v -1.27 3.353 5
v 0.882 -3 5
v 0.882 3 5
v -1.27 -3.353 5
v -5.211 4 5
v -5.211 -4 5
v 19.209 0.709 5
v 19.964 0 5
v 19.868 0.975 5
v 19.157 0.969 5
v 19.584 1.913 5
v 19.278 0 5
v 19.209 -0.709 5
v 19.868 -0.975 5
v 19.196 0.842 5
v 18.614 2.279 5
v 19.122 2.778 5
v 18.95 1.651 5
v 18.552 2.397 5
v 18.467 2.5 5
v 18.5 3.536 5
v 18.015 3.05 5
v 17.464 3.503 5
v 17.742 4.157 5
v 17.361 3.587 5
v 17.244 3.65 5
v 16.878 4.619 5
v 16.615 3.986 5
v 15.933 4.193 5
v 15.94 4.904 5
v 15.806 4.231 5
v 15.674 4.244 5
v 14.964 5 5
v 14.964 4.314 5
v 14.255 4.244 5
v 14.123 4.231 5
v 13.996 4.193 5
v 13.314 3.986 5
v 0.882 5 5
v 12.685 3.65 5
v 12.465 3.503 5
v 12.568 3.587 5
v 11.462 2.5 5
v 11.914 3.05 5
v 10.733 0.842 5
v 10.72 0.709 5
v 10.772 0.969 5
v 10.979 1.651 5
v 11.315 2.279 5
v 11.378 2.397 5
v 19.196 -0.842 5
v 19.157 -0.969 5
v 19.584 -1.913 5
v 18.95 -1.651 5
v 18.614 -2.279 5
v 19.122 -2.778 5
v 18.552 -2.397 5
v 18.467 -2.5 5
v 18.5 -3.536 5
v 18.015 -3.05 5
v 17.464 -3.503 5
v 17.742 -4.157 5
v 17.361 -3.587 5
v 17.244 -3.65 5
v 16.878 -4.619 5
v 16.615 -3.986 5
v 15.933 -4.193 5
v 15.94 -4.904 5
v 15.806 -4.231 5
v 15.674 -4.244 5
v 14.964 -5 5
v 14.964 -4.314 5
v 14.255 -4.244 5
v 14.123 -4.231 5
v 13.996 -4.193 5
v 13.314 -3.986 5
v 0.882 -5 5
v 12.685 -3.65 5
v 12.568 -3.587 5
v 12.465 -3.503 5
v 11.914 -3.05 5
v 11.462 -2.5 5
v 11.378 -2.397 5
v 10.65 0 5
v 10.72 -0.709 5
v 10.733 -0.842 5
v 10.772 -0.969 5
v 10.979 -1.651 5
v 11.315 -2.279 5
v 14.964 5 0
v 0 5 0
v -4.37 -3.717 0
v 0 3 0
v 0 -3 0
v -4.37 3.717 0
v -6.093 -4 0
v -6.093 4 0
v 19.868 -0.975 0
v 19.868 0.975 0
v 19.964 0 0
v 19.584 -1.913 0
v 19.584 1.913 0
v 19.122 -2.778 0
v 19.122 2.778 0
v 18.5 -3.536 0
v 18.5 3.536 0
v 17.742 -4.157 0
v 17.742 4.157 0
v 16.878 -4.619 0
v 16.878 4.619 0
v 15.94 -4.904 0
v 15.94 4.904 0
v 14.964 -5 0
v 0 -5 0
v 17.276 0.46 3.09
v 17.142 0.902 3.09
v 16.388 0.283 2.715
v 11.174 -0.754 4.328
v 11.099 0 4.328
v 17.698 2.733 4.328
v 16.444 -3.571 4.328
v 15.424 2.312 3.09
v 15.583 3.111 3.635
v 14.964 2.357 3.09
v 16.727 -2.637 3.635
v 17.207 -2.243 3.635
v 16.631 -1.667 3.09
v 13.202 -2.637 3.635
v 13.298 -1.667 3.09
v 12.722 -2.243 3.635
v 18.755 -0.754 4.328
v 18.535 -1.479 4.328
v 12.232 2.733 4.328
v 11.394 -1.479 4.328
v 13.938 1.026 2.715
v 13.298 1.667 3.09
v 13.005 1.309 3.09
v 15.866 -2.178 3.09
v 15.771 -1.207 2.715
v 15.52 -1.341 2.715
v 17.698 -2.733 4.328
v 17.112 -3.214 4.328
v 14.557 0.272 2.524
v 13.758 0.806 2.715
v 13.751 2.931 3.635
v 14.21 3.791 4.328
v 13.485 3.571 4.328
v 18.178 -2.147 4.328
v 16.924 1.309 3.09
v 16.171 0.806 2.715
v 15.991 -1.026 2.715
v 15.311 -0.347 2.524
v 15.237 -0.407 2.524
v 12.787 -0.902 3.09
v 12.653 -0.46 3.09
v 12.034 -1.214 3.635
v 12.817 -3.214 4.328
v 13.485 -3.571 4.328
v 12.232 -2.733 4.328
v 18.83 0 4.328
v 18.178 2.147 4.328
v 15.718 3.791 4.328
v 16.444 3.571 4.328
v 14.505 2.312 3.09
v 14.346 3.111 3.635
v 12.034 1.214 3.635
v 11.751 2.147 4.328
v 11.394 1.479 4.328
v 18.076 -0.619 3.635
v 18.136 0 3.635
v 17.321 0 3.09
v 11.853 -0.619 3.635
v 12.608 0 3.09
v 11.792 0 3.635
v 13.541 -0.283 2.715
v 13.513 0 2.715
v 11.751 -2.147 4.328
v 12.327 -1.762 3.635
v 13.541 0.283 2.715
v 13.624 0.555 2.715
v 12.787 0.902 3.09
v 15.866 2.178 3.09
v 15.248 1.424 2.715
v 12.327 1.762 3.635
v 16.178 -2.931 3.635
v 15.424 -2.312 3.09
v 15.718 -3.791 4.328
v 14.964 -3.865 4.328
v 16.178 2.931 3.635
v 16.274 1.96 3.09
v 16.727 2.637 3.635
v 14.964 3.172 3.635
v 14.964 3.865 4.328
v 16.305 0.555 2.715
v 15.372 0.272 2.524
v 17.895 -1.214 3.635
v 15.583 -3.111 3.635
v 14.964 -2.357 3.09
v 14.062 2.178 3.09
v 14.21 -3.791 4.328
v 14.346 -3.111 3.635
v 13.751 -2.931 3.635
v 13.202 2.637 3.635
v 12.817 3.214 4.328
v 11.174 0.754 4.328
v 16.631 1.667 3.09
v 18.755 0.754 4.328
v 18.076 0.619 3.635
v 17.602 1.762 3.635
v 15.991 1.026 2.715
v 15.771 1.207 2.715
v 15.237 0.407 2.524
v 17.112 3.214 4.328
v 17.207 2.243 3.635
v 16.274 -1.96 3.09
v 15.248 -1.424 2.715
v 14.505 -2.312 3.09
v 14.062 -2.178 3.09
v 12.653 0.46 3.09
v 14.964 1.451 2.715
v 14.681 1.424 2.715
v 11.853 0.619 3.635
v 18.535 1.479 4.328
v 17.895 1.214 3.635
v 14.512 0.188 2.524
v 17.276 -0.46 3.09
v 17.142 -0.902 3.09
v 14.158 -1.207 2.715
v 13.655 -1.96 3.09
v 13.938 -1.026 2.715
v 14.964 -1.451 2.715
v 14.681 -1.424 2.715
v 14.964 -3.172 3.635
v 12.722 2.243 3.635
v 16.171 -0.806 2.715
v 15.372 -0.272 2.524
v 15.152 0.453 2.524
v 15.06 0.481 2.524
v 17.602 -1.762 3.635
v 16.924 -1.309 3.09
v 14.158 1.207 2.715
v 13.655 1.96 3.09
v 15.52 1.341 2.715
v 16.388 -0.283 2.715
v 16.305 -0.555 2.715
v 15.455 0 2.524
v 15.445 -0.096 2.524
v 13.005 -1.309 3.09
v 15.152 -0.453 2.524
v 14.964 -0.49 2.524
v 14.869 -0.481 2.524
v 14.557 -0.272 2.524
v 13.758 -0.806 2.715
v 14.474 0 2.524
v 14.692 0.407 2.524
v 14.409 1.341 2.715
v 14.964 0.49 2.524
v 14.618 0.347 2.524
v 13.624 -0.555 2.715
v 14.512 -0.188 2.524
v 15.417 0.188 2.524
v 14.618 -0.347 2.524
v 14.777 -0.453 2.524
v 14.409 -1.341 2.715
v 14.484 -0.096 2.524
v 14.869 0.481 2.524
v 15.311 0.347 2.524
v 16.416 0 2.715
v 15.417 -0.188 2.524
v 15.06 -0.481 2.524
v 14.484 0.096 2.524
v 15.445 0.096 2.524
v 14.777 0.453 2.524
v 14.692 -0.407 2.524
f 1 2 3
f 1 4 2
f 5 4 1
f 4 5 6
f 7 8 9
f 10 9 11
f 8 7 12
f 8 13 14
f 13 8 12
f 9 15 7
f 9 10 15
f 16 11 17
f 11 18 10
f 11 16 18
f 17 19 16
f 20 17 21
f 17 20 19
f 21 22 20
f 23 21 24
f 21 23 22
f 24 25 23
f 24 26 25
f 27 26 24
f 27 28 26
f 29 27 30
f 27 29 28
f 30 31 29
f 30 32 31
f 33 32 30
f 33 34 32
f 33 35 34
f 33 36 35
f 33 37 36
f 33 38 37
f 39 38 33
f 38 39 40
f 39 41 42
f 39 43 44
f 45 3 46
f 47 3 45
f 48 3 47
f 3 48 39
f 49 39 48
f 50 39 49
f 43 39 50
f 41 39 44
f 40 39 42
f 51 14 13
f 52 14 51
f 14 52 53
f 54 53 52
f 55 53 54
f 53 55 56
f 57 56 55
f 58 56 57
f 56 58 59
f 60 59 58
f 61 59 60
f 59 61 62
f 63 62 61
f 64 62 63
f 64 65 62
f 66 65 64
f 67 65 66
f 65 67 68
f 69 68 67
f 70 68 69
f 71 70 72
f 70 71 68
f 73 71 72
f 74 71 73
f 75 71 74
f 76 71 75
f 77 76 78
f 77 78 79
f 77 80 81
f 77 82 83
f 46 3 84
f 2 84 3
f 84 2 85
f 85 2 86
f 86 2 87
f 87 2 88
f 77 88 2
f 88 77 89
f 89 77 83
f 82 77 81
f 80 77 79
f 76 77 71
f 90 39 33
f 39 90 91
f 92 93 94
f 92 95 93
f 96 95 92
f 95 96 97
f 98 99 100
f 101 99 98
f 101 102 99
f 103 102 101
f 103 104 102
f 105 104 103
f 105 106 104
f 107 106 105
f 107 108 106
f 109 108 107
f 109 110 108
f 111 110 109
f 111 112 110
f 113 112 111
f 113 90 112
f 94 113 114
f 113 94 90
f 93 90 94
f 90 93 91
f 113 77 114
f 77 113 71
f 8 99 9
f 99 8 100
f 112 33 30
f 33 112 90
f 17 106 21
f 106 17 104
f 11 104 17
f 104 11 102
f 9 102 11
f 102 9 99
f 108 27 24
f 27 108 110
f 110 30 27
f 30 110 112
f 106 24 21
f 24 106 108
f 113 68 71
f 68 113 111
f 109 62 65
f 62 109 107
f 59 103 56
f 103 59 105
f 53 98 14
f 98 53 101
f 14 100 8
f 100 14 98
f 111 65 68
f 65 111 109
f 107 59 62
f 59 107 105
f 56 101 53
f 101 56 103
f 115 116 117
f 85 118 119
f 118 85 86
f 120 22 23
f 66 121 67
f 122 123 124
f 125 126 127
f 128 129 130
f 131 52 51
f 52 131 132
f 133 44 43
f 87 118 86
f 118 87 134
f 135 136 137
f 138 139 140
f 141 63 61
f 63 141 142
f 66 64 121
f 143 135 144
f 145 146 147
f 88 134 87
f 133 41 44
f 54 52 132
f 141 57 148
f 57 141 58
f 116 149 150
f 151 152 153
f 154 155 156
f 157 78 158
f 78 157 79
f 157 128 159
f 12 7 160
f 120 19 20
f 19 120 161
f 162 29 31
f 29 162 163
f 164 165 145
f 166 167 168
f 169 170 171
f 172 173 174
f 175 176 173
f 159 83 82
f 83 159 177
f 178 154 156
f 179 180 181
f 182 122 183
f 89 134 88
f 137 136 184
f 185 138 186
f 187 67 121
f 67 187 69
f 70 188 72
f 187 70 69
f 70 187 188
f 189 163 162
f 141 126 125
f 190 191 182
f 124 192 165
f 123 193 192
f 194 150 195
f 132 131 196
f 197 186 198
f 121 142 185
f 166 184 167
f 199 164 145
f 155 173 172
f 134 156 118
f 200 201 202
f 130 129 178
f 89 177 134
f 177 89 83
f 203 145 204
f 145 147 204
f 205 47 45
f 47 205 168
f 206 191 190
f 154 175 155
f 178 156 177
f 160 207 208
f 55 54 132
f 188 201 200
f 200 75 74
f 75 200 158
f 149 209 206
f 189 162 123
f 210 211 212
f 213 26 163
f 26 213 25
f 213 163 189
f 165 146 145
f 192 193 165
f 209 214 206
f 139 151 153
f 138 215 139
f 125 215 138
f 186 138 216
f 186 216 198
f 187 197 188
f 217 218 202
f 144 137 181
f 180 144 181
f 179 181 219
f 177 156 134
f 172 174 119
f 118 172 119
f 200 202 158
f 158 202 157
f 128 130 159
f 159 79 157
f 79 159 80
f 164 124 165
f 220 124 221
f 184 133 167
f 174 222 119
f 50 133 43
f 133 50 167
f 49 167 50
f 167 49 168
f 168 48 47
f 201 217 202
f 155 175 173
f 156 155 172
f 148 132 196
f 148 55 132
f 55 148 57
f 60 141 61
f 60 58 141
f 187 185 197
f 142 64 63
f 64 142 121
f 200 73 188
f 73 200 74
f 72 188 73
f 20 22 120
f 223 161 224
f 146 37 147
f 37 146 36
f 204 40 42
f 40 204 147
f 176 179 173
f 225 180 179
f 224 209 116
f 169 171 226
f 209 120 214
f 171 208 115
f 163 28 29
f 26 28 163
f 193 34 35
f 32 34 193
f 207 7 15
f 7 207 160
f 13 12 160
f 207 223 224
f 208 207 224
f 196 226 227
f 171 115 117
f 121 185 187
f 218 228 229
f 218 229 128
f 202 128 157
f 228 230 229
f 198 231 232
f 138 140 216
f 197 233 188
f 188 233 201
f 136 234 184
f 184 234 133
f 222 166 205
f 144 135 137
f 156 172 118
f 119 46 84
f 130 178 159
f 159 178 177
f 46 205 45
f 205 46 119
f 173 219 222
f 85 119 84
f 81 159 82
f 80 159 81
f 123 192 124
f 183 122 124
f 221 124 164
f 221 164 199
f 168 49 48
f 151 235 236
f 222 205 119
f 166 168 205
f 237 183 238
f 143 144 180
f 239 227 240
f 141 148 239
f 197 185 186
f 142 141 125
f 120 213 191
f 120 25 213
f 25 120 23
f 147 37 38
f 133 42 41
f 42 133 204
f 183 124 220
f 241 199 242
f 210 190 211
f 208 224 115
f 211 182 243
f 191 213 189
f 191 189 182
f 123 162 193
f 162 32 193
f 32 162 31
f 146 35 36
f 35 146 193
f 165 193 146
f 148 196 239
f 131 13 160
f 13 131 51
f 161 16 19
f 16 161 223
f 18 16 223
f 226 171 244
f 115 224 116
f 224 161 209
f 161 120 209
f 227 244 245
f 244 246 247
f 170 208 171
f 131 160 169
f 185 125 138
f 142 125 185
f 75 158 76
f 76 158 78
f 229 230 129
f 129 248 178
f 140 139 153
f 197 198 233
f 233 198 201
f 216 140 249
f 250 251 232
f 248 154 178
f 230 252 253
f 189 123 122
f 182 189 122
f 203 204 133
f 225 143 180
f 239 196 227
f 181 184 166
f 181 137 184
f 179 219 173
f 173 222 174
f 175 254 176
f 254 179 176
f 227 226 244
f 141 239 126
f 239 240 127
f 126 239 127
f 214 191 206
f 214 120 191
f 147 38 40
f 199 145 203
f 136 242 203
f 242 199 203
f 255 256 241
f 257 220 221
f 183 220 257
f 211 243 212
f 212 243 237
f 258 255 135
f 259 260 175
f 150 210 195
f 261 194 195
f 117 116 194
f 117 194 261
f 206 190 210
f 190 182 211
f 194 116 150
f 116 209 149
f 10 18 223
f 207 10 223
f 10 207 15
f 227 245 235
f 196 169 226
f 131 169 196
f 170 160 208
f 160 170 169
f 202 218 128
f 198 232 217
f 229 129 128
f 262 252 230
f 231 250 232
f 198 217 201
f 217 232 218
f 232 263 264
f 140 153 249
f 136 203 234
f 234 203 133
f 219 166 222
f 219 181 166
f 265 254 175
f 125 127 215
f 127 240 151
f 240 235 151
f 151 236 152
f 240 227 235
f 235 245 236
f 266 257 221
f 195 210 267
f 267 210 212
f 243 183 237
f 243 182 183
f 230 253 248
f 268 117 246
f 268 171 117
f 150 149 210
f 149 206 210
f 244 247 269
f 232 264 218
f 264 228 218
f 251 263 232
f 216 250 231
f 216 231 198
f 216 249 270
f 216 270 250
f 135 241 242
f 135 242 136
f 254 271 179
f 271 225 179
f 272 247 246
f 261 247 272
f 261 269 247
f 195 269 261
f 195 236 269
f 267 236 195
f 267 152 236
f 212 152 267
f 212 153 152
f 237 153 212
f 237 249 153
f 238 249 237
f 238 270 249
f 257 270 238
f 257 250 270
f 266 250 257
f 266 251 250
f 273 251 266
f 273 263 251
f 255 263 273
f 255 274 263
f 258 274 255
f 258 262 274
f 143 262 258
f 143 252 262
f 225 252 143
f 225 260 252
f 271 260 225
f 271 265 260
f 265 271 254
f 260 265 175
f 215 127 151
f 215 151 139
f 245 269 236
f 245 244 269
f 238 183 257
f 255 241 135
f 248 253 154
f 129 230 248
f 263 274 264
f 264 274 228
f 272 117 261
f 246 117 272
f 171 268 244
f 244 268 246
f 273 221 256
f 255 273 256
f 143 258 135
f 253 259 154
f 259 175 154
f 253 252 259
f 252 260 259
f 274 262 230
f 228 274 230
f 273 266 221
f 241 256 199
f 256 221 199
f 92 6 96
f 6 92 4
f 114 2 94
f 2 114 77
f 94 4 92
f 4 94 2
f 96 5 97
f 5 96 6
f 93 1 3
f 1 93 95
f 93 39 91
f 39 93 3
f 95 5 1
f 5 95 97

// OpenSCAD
// file: ../../conf/printer_config.scad
/**********************************************************************************************************************
 **
 ** conf/printer_config.scad
 **
 ** This file contains the main control variables that determine the size and shape of the printer. Note that in the
 ** actual parts specifications, the constants defined here will only ever be accessed through functions defined in
 ** conf/derived_sizes.scad exclusively to allow for easier adaptation, should the mode of calculation change. 
 **
 ** All sizes in mm. Caution: Little to no cross-checking is implemented. Change values sensibly and one at a time.
 **
 ** This file is NOT to be included by any other file except for conf/derived_sizes.scad.
 **
 **********************************************************************************************************************/

include <constants.scad>

// ===== PRINTER CONFIGURATION ========================================================================================

// The length of the vertical MakerSlide extrusions that make up the rails for the carriages.
FRAME_V_RAIL_HEIGHT = 800;

// The length of the horizontal 20x20 V-Slot extrusions that form the sides of the triangle.
FRAME_H_RAIL_LENGTH = 400;

// ===== FABRICATED PART DIMENSIONS ===================================================================================

// The additional clearance to leave around the MakerSlide extrusion.
MAKERSLIDE_CLEARANCE = 0.05;

// The thickness of the walls outside the extruded parts.
FRAME_PART_WALL_THICKNESS = 3;

// The thickness of the wall that separates the vertical rails from the horizontal extrusions.
FRAME_V_H_RAIL_SEPARATION = 8;

// The depth of the holes that hold the V-Slot extrusions.
FRAME_PART_VSLOT_DEPTH = 30;

// Whether to use a horizontal rail at the base of the printer or not.
FRAME_HORIZONTAL_BASE_RAIL = false;

// The depth of the holes in the foot that hold the MakerSlide extrusions. This is for the foot version that holds
// a horizontal rail.
FRAME_FOOT_RAIL_MAKERSLIDE_DEPTH = 25; 

// The depth of the holes in the foot that hold the MakerSlide extrusions. This is for the foot version that does not
// hold a horizontal rail.
FRAME_FOOT_NORAIL_MAKERSLIDE_DEPTH = 17.5; 

// The size of the screws that can be used to mount the foot to the underlying surface.
FRAME_FOOT_BOTTOM_SCREW_SIZE = M5;

// The height of the bracket that holds the motor. WARNING: Increasing this might make it difficult to 
// turn the screws that hold the motor.
FRAME_MOTOR_BRACKET_HEIGHT = 25;

// The height of the bracket that holds the intermediate level with the working surface (print bed).
FRAME_BED_BRACKET_HEIGHT = 25; 

// The depth of the holes in the head that hold the MakerSlide extrusions.
FRAME_HEAD_MAKERSLIDE_DEPTH = 35; 

// The thickness of the carriage base plate. A thicker plate will make the carriage stiffer, but cost more
// material to print and take away space from the working area.
CARRIAGE_PLATE_THICKNESS = 6;

// The width of the border around the holes in the carriage base plate that hold the V-Wheels. 
CARRIAGE_PLATE_BORDER_WIDTH = 8;

// The range by which the vertical belt tensioner can be adjusted.
TENSIONER_RANGE = 15;

// The distance between the rods that hold the effector.
ROD_DISTANCE = 65;

// The outer diameter of the rods.
ROD_OUTER_DIAMETER = 6;

// The inner diameter of the rods. Set to 0 if the rods are not hollow.
ROD_INNER_DIAMETER = 4;

// The additional clearance to leave between the rod and the holder.
ROD_CLEARANCE = 0.05;

// The thickness of the outer wall around the rod.
ROD_HOLDER_WALL_THICKNESS = 2;

// The depth of the insets that hold the rods.
ROD_HOLDER_DEPTH = 10;

// The minimum angle of the arms.
ROD_MIN_ANGLE = 20;

// The factor used to round up the rod length.
ROD_ROUND_UP_TO = 5;

// The thickness of the magnet holder arms.
MAGNET_HOLDER_THICKNESS = 5;

// The additional clearance to leave around the magnet holder pin.
MAGNET_CLEARANCE = 0.025;

// The upward angle of the ball holder on the carriage.
CARRIAGE_BALL_HOLDER_ANGLE = 10;

// The additional distance between the magnets on the effector (not the rod distance - the other one :-)).
// This value is added to the minimum distance determined by the magnet size and wall thickness.
EFFECTOR_BALL_ADDITIONAL_DISTANCE = 15;

// The thickness of the effector plate.
EFFECTOR_THICKNESS = 8;
// file: ../../conf/constants.scad
/**********************************************************************************************************************
 **
 ** conf/constants.scad
 **
 ** This file contains constants and aliases used for the part size definitions.
 **
 **********************************************************************************************************************/

/**
 * The alias names for the rails.
 * A is the "front left" rail, B the "front right" rail, C the back rail.
 * These constants are also used for the sides of the frame and the effector; in this case, side A is the one 
 * opposing rail A.
 */
A = 0;
B = 1;
C = 2;

/**
 * Aliases for metric screw/nut sizes.
 */
M2 = 2;
M3 = 3;
M4 = 4;
M5 = 5;
M8 = 8;

/** 
 * Aliases for NEMA stepper motors.
 */
NEMA14 = 14;
NEMA17 = 17;
NEMA23 = 23;
// file: ../../bom/bom.scad
/**********************************************************************************************************************
 **
 ** bom/bom.scad
 **
 ** This file provides the functions to generate a basic bill of materials (BOM) from the model.
 **
 **********************************************************************************************************************/

/**
 * A recursive function to format the parent module hierarchy as a series of delimited sub-strings.
 * Example: "vertical_axis_assembly>_vertical_axis_assembly>makerslide_vertical_rail"
 */
function _bom_parent_list(level, delimiter = ">") = 
	(level < $parent_modules - 1) ? str(_bom_parent_list(level = level + 1), delimiter, parent_module(level)) : "";

module bom_entry(description = "", size = "", number = 1) {
	// Only perform any actions if WRITE_BOM is set. This is done through the command line - see Makefile.
	if (WRITE_BOM) {
		echo(str("BOM;", description, ";", size, ";", number, ";", _bom_parent_list(level = 2)));
	}
}
// file: ../../conf/colors.scad
/**********************************************************************************************************************
 **
 ** conf/colors.scad
 **
 ** This file defines some modules to use symbolic colors throughout the entire project.
 **
 **********************************************************************************************************************/

/**
 * The color of the aluminium extrusions.
 */
module color_extrusion() {
	color("LightGrey")
		children();
} 

/**
 * The color of the "outer" printed frame elements.
 */
module color_printed_outer_frame() {
	color("RoyalBlue")
		children();
} 

/**
 * The color of the "inner" printed frame elements.
 */
module color_printed_inner_frame() {
	color("DodgerBlue")
		children();
} 

/**
 * The color of the printed carriages.
 */
module color_printed_carriage() {
	color("DodgerBlue")
		children();
} 

/**
 * The color of the printed tensioners.
 */
module color_printed_tensioner() {
	color("PowderBlue")
		children();
} 

/**
 * The color of the stock hardware parts like nuts, bolts and screws.
 */
module color_hardware() {
	color("DarkSlateGray")
		children();
} 

/**
 * The color of the gears and ball bearings.
 */
module color_gears() {
	color("Gray")
		children();
} 

/**
 * The color of the belts.
 */
module color_belt() {
	color("SaddleBrown")
		children();
} 

/**
 * The color of the stepper motors.
 */
module color_motor() {
	color("DimGray")
		children();
} 

/**
 * The color of the end switches.
 */
module color_switch() {
	color([0.15, 0.15, 0.15])
		children();
} 

/**
 * The color of the V-Wheels.
 */
module color_vwheels() {
	color([0.075, 0.075, 0.075])
		children();
} 

/**
 * The color of punches and other objects that are usually not intended to be rendered as such, but rather to be
 * used as subtractive objects.
 */
module color_punch() {
	color("Red")
		children();
} 
// main file
/**********************************************************************************************************************
 **
 ** parts/printed/carriage_ball_holder.scad
 **
 ** This file constructs the ball holders that are mounted to the carriage. To assemble the printer, you need six of 
 ** these parts.
 **
 **********************************************************************************************************************/

include <../../conf/colors.scad>
include <../../conf/derived_sizes.scad>
include <../../conf/part_sizes.scad>

use <../../bom/bom.scad>
use <../../parts/vitamins/vitamins.scad>

/**
 * Creates the ball holder assembly by rendering it from scratch. This module is not to be called externally, use 
 * carriage_ball_holder() instead.
 */
module _render_carriage_ball_holder() {
	color_printed_carriage()
		render() {
			rotate([0, 0, 0]) {

				difference() {
					// the basic block shape
					union() {
						translate([-carriage_ball_holder_joint_depth(), -carriage_ball_holder_width()/2, 0])
							cube([carriage_ball_holder_depth() - ball_diameter()/2, 
								  carriage_ball_holder_width(), 
								  carriage_ball_holder_height()]);
						translate([carriage_ball_holder_depth() - carriage_ball_holder_joint_depth() - ball_diameter()/2, 0, 0])
							cylinder(d = ball_diameter(), 
								     h = carriage_ball_holder_height(), 
								   	 $fn = carriage_ball_holder_resolution());
					}

					// minus the recess to hold the ball
					translate(carriage_ball_holder_ball_position())
						sphere(d = ball_diameter(), $fn = carriage_ball_holder_resolution());

					// minus the left dovetail cutaway
					rotate([0, carriage_ball_holder_angle(), 0])
						translate([0, 0, -carriage_ball_holder_height()])
						linear_extrude(height = 3*carriage_ball_holder_height()) {
							polygon(points = [
								[-carriage_plate_thickness(), -carriage_ball_holder_width()/2],
								[-carriage_plate_thickness(), -carriage_ball_holder_joint_outer_width()/2],
								[0,                           -carriage_ball_holder_joint_inner_width()/2],
								[0,                           -carriage_ball_holder_width()/2]
							]);
						}

					// minus the right dovetail cutaway
					rotate([0, carriage_ball_holder_angle(), 0])
						translate([0, 0, -carriage_ball_holder_height()])
						linear_extrude(height = 3*carriage_ball_holder_height()) {
							polygon(points = [
								[-carriage_plate_thickness(), carriage_ball_holder_width()/2],
								[-carriage_plate_thickness(), carriage_ball_holder_joint_outer_width()/2],
								[0,                           carriage_ball_holder_joint_inner_width()/2],
								[0,                           carriage_ball_holder_width()/2]
							]);
						}

					// minus the back beveled edge
					_bevel_cutout_depth = 10;
					rotate([0, carriage_ball_holder_angle(), 0])
						translate([-carriage_plate_thickness() - _bevel_cutout_depth, 
							       -carriage_ball_holder_width()/2,
							       -carriage_ball_holder_height()])
							cube([_bevel_cutout_depth,
								  carriage_ball_holder_width(), 
								  3*carriage_ball_holder_height()]);

				}
			} // rotate
		} // render
}

/**
 * Main module to use the pre-rendered ball holder. The part is aligned so that the center of the lower inner dovetail 
 * joint is placed at the origin. To place it in the carriage, it needs to be rotated with 
 *   rotate([0, -carriage_ball_holder_angle(), 0])
 */
module carriage_ball_holder() {
	bom_entry(section = "Printed Parts", description = "Arm", size = "Carriage Ball Holder");
	color_printed_carriage()
		import(file = "carriage_ball_holder.stl");
}

/** 
 * Renders the hardware (nuts, bolts, screws) that are used to fixed the printed part to the surrounding parts.
 */
module carriage_ball_holder_hardware() {
	translate(carriage_ball_holder_ball_position())
		ball(size = ball_diameter());

}

_render_carriage_ball_holder();
